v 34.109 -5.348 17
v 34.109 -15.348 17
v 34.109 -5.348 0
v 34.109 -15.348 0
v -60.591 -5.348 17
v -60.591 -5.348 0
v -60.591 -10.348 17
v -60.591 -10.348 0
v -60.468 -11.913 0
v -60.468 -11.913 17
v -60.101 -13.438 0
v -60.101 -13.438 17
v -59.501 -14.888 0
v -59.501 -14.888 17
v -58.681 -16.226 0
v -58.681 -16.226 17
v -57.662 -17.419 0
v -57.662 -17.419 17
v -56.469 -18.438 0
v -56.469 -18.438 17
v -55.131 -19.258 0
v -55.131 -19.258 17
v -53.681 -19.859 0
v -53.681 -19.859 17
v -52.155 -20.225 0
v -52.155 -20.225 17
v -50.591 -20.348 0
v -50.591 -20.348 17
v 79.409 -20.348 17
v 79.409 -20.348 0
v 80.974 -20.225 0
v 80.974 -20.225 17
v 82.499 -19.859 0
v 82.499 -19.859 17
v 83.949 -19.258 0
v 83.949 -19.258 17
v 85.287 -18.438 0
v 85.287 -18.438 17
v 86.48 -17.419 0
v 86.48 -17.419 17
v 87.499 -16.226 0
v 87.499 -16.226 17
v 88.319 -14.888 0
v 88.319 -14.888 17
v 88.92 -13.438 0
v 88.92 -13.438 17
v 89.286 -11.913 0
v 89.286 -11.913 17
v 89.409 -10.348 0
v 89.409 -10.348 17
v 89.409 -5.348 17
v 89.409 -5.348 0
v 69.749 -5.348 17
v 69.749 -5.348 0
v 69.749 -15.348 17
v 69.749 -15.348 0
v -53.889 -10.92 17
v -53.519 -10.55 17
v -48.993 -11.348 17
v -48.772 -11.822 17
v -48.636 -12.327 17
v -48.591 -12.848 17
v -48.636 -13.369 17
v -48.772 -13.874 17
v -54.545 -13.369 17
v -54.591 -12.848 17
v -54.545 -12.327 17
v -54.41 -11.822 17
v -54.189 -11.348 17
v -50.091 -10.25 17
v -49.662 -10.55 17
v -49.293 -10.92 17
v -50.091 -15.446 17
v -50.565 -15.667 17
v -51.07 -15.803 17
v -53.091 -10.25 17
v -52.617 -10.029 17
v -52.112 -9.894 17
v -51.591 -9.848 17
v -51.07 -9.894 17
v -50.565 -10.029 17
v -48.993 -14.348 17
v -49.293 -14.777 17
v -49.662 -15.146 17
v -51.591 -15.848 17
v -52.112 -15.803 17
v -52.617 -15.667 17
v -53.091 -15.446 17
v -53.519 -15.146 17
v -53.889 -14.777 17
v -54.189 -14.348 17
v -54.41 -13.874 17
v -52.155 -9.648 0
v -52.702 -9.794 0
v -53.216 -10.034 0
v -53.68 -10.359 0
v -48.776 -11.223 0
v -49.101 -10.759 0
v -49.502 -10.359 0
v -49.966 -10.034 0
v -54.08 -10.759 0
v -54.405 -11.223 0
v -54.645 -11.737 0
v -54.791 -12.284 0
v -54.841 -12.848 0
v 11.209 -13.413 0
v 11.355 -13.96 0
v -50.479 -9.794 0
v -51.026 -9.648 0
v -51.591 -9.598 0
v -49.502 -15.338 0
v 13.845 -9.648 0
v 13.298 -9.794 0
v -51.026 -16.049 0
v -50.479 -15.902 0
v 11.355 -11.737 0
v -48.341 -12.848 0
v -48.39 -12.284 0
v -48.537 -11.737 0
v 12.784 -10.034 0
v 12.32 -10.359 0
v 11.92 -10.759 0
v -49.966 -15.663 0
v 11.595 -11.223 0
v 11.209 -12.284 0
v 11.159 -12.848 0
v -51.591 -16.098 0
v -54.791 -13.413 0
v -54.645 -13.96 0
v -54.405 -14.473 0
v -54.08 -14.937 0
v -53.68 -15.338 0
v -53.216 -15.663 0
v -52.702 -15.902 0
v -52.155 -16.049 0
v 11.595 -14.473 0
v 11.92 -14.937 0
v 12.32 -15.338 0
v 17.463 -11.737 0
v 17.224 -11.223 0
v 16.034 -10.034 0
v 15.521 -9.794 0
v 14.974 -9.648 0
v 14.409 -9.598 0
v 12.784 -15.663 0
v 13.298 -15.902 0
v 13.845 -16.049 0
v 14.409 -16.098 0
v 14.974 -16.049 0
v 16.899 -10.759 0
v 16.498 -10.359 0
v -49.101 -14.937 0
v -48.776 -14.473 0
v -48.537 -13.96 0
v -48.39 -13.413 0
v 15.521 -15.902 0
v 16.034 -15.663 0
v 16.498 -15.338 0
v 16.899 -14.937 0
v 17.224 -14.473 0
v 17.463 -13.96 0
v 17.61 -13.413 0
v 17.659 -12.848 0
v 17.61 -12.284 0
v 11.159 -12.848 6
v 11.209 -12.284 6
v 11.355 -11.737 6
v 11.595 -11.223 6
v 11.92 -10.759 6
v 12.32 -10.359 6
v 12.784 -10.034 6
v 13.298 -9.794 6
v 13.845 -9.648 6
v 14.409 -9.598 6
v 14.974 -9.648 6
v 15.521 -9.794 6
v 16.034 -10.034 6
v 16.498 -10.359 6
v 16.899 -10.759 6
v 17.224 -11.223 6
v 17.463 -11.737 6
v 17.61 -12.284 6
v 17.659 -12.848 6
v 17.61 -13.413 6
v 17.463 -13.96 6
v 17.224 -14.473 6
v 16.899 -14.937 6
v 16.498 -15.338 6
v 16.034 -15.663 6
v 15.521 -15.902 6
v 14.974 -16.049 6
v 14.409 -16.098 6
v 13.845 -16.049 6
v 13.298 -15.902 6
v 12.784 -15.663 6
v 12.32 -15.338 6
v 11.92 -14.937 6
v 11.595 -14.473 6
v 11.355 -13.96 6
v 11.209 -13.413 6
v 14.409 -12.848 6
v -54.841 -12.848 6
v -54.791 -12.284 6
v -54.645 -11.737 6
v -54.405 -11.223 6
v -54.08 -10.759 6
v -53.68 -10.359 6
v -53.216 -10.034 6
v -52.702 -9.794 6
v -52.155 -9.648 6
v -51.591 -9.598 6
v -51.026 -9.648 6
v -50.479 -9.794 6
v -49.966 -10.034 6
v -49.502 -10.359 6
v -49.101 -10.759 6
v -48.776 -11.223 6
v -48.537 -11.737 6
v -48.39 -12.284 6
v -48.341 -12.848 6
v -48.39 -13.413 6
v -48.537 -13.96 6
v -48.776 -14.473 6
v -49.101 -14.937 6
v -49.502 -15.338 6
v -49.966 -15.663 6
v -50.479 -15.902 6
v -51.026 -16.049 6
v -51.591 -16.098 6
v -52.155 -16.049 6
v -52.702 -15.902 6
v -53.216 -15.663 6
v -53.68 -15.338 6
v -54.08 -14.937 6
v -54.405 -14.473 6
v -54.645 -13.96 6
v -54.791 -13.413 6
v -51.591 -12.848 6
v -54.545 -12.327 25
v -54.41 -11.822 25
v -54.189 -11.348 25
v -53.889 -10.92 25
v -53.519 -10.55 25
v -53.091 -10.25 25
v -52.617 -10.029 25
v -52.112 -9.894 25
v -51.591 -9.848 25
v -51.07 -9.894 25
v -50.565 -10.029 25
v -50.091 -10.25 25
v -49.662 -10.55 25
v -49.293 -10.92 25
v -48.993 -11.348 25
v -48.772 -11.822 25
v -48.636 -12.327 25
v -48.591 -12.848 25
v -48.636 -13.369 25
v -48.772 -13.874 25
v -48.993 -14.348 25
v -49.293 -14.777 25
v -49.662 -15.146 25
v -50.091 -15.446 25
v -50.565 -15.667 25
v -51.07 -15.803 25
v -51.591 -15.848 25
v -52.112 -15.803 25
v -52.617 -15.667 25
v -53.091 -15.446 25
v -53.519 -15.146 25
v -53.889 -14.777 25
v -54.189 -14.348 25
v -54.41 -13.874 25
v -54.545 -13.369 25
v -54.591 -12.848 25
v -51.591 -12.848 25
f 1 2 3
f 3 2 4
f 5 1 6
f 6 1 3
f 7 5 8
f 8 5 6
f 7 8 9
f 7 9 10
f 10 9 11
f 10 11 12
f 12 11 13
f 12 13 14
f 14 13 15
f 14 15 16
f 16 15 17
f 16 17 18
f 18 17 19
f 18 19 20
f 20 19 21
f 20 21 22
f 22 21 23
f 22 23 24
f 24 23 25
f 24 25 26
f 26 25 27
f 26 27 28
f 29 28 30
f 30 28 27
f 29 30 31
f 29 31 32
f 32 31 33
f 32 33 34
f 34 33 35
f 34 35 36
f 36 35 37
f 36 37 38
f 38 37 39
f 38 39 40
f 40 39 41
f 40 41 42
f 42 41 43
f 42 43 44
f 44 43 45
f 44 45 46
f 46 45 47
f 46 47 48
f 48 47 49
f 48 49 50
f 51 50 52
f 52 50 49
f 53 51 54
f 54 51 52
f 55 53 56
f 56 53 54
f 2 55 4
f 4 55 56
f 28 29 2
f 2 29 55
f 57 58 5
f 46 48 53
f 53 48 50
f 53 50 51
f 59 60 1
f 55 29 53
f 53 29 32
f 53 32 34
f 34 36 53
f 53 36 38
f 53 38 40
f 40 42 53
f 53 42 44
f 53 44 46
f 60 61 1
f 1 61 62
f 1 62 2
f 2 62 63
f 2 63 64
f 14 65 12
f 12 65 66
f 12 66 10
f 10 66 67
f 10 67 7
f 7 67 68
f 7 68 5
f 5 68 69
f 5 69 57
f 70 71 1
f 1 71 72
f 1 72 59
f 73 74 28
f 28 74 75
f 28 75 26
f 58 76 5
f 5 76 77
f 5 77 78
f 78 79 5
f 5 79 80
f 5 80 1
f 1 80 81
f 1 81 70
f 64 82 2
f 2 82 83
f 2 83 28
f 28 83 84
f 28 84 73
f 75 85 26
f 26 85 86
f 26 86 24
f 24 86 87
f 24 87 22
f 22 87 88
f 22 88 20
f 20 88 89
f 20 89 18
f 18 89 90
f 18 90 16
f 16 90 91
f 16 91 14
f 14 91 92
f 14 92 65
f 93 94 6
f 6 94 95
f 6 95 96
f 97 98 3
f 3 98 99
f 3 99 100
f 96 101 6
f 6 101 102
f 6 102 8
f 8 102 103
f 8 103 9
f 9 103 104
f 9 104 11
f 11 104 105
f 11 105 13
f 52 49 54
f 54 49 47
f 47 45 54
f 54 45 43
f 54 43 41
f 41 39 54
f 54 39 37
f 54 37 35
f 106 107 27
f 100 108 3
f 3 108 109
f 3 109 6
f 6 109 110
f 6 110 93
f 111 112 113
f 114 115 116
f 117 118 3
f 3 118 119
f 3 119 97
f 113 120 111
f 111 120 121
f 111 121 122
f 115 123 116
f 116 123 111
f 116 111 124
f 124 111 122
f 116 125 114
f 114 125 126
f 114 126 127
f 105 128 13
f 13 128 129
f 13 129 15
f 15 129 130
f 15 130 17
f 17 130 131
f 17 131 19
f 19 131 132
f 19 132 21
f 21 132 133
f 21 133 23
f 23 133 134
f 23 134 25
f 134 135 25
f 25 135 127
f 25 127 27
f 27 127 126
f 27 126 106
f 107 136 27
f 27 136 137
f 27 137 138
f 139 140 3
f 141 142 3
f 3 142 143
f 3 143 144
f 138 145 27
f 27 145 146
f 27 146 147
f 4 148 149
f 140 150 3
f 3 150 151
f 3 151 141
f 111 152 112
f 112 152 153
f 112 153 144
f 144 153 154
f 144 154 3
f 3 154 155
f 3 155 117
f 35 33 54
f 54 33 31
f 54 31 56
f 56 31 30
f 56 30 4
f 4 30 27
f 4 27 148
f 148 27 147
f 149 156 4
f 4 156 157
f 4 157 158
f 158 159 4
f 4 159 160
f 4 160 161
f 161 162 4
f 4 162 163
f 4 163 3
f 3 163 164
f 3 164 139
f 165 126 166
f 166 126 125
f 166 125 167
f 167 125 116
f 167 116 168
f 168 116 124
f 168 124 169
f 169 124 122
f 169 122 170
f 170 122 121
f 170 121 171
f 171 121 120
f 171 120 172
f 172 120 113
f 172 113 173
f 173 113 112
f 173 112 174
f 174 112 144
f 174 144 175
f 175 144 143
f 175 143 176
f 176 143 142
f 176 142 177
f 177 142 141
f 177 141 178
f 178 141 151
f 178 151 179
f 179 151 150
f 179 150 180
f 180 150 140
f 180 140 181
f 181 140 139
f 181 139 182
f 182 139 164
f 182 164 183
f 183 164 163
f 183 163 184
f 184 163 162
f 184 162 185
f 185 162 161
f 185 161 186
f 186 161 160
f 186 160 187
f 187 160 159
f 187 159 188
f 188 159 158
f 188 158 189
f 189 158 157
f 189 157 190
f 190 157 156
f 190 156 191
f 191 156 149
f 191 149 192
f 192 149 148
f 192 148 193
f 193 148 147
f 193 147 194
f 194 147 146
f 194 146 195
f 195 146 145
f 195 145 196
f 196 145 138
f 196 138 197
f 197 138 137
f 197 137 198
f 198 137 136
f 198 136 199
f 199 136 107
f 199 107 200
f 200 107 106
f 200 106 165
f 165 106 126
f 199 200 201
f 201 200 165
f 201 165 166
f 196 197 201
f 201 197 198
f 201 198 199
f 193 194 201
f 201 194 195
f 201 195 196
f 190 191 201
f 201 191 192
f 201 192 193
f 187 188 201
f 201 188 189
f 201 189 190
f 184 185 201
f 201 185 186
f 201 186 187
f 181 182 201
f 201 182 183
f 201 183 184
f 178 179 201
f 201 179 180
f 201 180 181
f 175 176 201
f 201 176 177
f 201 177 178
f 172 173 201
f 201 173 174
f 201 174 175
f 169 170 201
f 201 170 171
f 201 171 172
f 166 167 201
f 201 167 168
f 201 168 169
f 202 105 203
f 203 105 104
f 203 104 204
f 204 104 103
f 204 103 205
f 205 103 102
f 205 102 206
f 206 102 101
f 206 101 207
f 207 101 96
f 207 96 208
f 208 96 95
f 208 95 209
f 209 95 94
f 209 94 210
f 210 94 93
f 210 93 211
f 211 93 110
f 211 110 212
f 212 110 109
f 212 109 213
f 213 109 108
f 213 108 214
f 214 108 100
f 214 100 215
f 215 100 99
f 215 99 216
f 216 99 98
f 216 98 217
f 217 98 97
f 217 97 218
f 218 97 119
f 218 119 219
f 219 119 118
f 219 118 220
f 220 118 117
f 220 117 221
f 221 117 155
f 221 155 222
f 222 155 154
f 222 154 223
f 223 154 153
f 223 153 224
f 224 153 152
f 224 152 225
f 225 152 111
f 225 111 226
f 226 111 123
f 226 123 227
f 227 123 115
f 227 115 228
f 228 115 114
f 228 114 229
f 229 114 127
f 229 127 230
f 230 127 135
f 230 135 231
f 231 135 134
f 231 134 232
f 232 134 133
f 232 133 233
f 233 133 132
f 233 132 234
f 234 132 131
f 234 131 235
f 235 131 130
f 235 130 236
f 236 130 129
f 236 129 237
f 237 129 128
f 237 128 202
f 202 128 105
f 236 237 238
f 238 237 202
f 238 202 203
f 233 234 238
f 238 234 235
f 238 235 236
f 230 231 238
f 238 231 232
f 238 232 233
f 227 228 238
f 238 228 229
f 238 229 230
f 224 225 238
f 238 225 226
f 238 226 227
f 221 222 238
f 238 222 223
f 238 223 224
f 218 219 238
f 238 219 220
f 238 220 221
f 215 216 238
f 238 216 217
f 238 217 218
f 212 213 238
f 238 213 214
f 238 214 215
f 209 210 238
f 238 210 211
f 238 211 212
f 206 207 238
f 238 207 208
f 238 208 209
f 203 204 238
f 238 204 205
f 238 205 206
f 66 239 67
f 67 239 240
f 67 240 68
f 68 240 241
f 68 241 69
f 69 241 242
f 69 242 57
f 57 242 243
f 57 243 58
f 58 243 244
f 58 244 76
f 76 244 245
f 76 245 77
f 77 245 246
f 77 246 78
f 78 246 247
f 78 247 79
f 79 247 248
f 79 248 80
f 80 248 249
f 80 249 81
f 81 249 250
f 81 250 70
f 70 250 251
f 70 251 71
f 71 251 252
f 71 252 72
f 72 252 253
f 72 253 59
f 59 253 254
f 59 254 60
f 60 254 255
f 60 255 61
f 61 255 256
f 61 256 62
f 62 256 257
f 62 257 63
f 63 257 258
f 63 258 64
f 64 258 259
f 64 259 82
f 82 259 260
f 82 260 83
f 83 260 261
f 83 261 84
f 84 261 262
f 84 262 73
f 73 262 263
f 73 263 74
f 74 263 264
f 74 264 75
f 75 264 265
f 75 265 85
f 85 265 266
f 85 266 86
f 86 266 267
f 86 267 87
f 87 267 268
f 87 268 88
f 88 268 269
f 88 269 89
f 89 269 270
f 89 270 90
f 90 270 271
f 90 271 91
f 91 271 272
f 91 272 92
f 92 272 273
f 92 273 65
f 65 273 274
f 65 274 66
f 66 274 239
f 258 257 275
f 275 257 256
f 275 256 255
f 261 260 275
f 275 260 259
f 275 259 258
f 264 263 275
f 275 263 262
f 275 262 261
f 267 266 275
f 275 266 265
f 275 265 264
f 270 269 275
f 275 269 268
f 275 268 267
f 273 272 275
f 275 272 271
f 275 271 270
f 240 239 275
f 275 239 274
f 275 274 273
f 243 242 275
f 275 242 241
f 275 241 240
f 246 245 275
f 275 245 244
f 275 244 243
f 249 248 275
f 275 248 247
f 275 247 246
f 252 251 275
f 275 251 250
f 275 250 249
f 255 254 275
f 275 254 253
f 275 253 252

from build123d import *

# Parameters (mm, degrees)
BOSS_EXTRUDE1_DEPTH = 17
SKETCH3_R           = 3.25
CUT_EXTRUDE1_DEPTH  = 6
SKETCH4_R           = 3
BOSS_EXTRUDE2_DEPTH = 8


with BuildPart() as part:
    # Sketch2 → Boss-Extrude1 (new body)
    with BuildSketch(Plane.XY):
        with BuildLine():
            Line((-50.590688259, -20.348178138), (79.409311741, -20.348178138))
            ThreePointArc((79.409311741, -20.348178138), (86.480379553, -17.41924595), (89.409311741, -10.348178138))
            Line((89.409311741, -10.348178138), (89.409311741, -5.348178138))
            Line((89.409311741, -5.348178138), (79.409311741, -5.348178138))
            Line((79.409311741, -5.348178138), (69.749311741, -5.348178138))
            Line((69.749311741, -5.348178138), (69.749311741, -15.348178138))
            Line((69.749311741, -15.348178138), (34.109311741, -15.348178138))
            Line((34.109311741, -15.348178138), (34.109311741, -5.348178138))
            Line((34.109311741, -5.348178138), (-50.590688259, -5.348178138))
            Line((-50.590688259, -5.348178138), (-60.590688259, -5.348178138))
            Line((-60.590688259, -5.348178138), (-60.590688259, -10.348178138))
            ThreePointArc((-60.590688259, -10.348178138), (-57.661756071, -17.41924595), (-50.590688259, -20.348178138))
        make_face()
    extrude(amount=BOSS_EXTRUDE1_DEPTH)

    # Sketch3 → Cut-Extrude1 (cut)
    with BuildSketch(Plane(origin=(0, 0, 0), x_dir=(-1, 0, 0), z_dir=(0, 0, -1))):
        with Locations((-14.409311741, -12.848178138)):
            Circle(SKETCH3_R)
        with Locations((51.590688259, -12.848178138)):
            Circle(SKETCH3_R)
    extrude(amount=-CUT_EXTRUDE1_DEPTH, mode=Mode.SUBTRACT)

    # Sketch4 → Boss-Extrude2 (add)
    with BuildSketch(Plane.XY.offset(17)):
        with Locations((-51.590688259, -12.848178138)):
            Circle(SKETCH4_R)
    extrude(amount=BOSS_EXTRUDE2_DEPTH)


solid = part.part
